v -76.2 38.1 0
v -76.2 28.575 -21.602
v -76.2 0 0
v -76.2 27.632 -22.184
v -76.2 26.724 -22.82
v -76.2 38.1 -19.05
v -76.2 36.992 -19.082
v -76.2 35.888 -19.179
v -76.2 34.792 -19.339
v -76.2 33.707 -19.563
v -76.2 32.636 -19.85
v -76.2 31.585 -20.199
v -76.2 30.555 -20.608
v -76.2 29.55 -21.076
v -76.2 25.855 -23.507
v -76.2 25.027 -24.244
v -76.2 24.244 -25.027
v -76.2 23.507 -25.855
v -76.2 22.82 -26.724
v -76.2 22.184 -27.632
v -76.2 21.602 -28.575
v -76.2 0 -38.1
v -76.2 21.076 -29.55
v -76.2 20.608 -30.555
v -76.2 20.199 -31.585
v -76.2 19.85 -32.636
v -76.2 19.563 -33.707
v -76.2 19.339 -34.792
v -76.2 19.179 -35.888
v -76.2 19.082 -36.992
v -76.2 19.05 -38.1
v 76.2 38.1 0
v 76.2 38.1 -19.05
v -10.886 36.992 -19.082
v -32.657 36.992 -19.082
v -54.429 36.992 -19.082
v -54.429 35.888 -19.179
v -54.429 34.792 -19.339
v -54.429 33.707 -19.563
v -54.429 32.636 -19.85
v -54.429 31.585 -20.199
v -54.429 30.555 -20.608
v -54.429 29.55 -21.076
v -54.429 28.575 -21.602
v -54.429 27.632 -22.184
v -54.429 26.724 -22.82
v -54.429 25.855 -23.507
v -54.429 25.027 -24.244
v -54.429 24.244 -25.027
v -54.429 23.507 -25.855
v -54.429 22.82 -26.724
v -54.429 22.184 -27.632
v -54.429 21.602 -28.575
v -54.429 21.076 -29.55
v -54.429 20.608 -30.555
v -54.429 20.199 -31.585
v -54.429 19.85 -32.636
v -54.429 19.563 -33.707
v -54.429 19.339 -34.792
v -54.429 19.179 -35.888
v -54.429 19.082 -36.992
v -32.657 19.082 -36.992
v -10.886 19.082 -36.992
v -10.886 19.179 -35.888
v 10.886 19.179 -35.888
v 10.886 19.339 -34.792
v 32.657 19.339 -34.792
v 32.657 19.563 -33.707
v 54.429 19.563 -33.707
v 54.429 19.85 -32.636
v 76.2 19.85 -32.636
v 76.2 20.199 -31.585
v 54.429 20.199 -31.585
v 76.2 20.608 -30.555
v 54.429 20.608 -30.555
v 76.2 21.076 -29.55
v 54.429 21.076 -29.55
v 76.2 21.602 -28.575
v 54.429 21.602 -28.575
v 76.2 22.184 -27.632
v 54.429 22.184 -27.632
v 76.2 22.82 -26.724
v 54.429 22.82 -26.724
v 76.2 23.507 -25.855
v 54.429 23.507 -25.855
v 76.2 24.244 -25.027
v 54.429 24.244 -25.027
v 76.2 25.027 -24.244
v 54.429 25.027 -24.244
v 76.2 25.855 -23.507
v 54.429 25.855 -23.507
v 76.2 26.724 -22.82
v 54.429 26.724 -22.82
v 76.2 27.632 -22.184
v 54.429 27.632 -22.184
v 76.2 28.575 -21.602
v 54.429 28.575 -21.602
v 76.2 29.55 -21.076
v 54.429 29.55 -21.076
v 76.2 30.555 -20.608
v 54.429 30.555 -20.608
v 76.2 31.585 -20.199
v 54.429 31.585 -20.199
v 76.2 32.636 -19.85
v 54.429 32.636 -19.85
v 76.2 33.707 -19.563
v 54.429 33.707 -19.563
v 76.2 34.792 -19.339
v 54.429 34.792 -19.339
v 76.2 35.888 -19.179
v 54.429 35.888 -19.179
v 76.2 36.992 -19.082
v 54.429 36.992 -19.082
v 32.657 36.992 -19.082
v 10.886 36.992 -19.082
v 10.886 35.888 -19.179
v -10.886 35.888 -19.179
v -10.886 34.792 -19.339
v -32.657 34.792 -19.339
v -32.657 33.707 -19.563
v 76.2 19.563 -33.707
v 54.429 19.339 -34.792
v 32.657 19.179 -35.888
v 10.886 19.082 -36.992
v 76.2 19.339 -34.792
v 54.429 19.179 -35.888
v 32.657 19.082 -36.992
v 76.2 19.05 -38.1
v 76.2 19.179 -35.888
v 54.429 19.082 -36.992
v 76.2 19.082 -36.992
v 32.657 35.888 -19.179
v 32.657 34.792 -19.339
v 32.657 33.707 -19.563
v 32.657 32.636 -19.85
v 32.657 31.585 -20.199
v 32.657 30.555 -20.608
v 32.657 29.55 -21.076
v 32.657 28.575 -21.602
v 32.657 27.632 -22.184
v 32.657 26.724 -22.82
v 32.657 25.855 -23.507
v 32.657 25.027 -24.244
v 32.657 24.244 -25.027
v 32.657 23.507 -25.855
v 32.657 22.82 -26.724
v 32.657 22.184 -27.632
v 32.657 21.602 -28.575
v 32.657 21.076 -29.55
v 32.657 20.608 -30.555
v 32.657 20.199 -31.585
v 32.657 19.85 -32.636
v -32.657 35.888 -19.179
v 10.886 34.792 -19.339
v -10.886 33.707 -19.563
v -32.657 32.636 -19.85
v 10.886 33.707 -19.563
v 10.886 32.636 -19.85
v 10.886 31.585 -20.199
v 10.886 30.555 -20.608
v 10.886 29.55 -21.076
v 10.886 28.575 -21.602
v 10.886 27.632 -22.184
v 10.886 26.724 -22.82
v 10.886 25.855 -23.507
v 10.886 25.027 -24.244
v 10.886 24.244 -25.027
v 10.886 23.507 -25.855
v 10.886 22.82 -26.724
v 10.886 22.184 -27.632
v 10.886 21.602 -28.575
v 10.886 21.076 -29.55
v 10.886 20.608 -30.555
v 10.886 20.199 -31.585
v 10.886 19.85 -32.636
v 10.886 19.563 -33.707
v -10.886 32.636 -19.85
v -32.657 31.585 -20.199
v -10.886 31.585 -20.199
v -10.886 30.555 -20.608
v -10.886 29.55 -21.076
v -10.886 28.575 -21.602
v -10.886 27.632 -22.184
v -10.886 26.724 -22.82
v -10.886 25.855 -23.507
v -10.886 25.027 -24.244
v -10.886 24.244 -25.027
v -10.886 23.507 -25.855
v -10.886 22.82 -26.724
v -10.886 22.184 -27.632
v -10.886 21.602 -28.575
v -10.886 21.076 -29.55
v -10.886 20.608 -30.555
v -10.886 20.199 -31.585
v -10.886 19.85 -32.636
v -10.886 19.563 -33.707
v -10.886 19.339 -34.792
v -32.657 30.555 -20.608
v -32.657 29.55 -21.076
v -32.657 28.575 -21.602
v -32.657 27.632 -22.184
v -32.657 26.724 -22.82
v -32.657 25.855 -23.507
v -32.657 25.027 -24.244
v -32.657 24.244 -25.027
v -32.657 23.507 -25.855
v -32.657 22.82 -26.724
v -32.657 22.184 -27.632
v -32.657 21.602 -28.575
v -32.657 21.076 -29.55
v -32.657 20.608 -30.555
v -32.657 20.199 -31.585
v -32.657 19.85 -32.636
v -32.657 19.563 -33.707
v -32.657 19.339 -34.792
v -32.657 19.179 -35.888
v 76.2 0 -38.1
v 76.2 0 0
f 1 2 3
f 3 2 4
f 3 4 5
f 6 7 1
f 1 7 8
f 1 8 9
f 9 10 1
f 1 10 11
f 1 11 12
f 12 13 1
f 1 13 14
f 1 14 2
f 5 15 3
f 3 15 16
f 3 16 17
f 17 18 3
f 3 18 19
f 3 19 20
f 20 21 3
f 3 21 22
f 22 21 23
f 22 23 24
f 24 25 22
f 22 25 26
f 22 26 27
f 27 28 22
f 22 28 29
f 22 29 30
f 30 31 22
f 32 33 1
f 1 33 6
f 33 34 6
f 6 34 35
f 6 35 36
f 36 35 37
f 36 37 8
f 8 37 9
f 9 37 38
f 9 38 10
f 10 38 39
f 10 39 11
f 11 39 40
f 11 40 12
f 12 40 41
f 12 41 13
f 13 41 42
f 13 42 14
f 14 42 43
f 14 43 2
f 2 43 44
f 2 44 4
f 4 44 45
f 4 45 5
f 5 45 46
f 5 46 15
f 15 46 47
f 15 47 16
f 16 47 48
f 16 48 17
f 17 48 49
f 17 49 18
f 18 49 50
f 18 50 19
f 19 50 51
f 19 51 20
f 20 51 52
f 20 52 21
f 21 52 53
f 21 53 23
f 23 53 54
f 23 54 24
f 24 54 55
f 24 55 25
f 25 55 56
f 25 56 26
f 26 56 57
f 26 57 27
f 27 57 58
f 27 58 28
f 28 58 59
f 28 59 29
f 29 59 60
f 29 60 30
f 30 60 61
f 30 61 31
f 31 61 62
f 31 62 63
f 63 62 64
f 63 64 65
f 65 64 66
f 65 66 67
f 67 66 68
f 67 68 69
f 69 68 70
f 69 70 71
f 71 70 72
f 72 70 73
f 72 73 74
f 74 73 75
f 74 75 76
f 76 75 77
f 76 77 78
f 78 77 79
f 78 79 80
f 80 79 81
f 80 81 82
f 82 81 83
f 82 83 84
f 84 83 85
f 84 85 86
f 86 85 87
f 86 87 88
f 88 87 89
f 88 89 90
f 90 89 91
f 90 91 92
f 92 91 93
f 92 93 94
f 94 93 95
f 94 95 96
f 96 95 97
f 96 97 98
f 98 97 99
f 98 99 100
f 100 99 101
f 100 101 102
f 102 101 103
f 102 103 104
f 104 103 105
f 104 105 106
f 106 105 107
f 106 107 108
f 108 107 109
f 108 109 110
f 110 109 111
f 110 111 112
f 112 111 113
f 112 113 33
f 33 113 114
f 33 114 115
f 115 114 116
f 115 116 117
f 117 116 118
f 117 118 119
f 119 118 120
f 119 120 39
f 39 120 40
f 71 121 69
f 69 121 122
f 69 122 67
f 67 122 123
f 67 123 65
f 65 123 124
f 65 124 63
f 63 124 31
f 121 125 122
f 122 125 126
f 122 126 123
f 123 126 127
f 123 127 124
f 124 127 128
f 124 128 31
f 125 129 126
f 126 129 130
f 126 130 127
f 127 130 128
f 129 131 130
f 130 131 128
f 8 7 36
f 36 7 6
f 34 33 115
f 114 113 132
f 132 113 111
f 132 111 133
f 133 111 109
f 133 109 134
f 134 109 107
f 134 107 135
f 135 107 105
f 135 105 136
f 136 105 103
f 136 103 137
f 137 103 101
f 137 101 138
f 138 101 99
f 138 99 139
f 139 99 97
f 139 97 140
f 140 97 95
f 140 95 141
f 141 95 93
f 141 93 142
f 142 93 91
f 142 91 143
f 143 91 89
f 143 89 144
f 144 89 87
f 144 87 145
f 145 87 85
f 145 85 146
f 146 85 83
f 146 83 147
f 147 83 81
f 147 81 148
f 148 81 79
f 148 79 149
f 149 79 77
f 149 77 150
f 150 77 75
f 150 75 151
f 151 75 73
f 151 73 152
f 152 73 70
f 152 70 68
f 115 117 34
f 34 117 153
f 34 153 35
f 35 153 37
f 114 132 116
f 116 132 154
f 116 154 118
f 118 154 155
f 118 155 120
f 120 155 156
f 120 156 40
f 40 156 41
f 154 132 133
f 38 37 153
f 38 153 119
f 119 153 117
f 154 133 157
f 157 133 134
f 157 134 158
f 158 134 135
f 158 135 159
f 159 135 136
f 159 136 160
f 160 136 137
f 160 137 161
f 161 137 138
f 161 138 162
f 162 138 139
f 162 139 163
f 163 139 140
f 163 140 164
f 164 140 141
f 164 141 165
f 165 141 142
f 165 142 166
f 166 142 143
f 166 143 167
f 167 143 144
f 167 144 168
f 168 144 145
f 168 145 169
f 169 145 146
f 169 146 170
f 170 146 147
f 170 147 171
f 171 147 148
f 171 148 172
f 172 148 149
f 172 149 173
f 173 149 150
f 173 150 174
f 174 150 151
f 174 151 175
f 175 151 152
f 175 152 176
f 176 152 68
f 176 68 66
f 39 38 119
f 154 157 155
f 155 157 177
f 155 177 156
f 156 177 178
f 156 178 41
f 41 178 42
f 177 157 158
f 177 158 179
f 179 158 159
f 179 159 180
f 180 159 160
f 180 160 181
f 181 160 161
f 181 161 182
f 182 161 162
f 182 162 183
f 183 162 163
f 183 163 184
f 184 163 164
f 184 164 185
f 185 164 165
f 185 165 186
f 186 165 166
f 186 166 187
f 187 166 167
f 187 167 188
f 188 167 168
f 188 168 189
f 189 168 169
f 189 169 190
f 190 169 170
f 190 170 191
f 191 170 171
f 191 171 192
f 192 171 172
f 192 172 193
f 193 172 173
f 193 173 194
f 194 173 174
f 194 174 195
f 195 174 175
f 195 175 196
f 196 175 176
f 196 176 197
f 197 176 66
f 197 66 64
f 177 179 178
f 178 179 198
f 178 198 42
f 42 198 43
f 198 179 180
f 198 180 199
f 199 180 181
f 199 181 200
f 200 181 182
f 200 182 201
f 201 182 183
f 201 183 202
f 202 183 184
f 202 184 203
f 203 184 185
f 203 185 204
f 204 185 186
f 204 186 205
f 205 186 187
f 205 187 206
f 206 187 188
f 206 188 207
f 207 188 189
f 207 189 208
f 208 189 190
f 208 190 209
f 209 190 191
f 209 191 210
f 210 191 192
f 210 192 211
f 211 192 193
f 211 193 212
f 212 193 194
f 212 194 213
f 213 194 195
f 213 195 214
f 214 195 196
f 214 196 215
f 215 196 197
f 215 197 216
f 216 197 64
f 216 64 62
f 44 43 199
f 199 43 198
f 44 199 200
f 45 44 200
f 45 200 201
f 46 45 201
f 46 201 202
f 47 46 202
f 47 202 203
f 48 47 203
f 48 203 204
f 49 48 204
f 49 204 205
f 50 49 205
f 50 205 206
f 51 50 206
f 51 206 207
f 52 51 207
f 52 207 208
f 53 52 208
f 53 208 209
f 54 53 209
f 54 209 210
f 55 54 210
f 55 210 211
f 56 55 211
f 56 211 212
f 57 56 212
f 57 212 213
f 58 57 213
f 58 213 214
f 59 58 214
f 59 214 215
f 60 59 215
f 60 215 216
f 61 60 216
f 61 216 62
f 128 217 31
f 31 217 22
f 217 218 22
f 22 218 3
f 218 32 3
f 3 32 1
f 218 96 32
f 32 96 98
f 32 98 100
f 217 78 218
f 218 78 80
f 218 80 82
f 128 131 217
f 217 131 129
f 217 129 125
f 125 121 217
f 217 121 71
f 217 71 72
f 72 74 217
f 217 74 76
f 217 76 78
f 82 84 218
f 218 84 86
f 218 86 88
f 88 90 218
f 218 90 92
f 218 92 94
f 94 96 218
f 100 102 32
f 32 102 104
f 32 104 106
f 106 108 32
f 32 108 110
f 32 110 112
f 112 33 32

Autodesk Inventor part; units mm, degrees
ref_plane "YZ Plane" through (0, 0, 0) normal (1, 0, 0) x (0, 1, 0)
ref_plane "XZ Plane" through (0, 0, 0) normal (0, 1, 0) x (-1, 0, 0)
ref_plane "XY Plane" through (0, 0, 0) normal (0, 0, 1) x (1, 0, 0)
sketch "Sketch1" plane through (0, 0, 0) normal (1, 0, 0) x (0, 1, 0)
  line L0 (0, 0) -> (38.1, 0)
  line L1 (38.1, 0) -> (38.1, -19.05)
  line L2 (19.05, -38.1) -> (0, -38.1)
  line L3 (0, -38.1) -> (0, 0)
  arc A0 (38.1, -19.05) -> (19.05, -38.1) centre (38.1, -38.1) ccw
  dimension "d0" = 38.1
  dimension "d1" = 38.1
  dimension "d2" = 38.1
  dimension "d5" = 38.1
  dimension "d6" = 38.1
extrude "Extrusion1" add sketch "Sketch1" along normal mid plane 152.4
properties part number "chuckFor_0_75_inchQuarterRound"
